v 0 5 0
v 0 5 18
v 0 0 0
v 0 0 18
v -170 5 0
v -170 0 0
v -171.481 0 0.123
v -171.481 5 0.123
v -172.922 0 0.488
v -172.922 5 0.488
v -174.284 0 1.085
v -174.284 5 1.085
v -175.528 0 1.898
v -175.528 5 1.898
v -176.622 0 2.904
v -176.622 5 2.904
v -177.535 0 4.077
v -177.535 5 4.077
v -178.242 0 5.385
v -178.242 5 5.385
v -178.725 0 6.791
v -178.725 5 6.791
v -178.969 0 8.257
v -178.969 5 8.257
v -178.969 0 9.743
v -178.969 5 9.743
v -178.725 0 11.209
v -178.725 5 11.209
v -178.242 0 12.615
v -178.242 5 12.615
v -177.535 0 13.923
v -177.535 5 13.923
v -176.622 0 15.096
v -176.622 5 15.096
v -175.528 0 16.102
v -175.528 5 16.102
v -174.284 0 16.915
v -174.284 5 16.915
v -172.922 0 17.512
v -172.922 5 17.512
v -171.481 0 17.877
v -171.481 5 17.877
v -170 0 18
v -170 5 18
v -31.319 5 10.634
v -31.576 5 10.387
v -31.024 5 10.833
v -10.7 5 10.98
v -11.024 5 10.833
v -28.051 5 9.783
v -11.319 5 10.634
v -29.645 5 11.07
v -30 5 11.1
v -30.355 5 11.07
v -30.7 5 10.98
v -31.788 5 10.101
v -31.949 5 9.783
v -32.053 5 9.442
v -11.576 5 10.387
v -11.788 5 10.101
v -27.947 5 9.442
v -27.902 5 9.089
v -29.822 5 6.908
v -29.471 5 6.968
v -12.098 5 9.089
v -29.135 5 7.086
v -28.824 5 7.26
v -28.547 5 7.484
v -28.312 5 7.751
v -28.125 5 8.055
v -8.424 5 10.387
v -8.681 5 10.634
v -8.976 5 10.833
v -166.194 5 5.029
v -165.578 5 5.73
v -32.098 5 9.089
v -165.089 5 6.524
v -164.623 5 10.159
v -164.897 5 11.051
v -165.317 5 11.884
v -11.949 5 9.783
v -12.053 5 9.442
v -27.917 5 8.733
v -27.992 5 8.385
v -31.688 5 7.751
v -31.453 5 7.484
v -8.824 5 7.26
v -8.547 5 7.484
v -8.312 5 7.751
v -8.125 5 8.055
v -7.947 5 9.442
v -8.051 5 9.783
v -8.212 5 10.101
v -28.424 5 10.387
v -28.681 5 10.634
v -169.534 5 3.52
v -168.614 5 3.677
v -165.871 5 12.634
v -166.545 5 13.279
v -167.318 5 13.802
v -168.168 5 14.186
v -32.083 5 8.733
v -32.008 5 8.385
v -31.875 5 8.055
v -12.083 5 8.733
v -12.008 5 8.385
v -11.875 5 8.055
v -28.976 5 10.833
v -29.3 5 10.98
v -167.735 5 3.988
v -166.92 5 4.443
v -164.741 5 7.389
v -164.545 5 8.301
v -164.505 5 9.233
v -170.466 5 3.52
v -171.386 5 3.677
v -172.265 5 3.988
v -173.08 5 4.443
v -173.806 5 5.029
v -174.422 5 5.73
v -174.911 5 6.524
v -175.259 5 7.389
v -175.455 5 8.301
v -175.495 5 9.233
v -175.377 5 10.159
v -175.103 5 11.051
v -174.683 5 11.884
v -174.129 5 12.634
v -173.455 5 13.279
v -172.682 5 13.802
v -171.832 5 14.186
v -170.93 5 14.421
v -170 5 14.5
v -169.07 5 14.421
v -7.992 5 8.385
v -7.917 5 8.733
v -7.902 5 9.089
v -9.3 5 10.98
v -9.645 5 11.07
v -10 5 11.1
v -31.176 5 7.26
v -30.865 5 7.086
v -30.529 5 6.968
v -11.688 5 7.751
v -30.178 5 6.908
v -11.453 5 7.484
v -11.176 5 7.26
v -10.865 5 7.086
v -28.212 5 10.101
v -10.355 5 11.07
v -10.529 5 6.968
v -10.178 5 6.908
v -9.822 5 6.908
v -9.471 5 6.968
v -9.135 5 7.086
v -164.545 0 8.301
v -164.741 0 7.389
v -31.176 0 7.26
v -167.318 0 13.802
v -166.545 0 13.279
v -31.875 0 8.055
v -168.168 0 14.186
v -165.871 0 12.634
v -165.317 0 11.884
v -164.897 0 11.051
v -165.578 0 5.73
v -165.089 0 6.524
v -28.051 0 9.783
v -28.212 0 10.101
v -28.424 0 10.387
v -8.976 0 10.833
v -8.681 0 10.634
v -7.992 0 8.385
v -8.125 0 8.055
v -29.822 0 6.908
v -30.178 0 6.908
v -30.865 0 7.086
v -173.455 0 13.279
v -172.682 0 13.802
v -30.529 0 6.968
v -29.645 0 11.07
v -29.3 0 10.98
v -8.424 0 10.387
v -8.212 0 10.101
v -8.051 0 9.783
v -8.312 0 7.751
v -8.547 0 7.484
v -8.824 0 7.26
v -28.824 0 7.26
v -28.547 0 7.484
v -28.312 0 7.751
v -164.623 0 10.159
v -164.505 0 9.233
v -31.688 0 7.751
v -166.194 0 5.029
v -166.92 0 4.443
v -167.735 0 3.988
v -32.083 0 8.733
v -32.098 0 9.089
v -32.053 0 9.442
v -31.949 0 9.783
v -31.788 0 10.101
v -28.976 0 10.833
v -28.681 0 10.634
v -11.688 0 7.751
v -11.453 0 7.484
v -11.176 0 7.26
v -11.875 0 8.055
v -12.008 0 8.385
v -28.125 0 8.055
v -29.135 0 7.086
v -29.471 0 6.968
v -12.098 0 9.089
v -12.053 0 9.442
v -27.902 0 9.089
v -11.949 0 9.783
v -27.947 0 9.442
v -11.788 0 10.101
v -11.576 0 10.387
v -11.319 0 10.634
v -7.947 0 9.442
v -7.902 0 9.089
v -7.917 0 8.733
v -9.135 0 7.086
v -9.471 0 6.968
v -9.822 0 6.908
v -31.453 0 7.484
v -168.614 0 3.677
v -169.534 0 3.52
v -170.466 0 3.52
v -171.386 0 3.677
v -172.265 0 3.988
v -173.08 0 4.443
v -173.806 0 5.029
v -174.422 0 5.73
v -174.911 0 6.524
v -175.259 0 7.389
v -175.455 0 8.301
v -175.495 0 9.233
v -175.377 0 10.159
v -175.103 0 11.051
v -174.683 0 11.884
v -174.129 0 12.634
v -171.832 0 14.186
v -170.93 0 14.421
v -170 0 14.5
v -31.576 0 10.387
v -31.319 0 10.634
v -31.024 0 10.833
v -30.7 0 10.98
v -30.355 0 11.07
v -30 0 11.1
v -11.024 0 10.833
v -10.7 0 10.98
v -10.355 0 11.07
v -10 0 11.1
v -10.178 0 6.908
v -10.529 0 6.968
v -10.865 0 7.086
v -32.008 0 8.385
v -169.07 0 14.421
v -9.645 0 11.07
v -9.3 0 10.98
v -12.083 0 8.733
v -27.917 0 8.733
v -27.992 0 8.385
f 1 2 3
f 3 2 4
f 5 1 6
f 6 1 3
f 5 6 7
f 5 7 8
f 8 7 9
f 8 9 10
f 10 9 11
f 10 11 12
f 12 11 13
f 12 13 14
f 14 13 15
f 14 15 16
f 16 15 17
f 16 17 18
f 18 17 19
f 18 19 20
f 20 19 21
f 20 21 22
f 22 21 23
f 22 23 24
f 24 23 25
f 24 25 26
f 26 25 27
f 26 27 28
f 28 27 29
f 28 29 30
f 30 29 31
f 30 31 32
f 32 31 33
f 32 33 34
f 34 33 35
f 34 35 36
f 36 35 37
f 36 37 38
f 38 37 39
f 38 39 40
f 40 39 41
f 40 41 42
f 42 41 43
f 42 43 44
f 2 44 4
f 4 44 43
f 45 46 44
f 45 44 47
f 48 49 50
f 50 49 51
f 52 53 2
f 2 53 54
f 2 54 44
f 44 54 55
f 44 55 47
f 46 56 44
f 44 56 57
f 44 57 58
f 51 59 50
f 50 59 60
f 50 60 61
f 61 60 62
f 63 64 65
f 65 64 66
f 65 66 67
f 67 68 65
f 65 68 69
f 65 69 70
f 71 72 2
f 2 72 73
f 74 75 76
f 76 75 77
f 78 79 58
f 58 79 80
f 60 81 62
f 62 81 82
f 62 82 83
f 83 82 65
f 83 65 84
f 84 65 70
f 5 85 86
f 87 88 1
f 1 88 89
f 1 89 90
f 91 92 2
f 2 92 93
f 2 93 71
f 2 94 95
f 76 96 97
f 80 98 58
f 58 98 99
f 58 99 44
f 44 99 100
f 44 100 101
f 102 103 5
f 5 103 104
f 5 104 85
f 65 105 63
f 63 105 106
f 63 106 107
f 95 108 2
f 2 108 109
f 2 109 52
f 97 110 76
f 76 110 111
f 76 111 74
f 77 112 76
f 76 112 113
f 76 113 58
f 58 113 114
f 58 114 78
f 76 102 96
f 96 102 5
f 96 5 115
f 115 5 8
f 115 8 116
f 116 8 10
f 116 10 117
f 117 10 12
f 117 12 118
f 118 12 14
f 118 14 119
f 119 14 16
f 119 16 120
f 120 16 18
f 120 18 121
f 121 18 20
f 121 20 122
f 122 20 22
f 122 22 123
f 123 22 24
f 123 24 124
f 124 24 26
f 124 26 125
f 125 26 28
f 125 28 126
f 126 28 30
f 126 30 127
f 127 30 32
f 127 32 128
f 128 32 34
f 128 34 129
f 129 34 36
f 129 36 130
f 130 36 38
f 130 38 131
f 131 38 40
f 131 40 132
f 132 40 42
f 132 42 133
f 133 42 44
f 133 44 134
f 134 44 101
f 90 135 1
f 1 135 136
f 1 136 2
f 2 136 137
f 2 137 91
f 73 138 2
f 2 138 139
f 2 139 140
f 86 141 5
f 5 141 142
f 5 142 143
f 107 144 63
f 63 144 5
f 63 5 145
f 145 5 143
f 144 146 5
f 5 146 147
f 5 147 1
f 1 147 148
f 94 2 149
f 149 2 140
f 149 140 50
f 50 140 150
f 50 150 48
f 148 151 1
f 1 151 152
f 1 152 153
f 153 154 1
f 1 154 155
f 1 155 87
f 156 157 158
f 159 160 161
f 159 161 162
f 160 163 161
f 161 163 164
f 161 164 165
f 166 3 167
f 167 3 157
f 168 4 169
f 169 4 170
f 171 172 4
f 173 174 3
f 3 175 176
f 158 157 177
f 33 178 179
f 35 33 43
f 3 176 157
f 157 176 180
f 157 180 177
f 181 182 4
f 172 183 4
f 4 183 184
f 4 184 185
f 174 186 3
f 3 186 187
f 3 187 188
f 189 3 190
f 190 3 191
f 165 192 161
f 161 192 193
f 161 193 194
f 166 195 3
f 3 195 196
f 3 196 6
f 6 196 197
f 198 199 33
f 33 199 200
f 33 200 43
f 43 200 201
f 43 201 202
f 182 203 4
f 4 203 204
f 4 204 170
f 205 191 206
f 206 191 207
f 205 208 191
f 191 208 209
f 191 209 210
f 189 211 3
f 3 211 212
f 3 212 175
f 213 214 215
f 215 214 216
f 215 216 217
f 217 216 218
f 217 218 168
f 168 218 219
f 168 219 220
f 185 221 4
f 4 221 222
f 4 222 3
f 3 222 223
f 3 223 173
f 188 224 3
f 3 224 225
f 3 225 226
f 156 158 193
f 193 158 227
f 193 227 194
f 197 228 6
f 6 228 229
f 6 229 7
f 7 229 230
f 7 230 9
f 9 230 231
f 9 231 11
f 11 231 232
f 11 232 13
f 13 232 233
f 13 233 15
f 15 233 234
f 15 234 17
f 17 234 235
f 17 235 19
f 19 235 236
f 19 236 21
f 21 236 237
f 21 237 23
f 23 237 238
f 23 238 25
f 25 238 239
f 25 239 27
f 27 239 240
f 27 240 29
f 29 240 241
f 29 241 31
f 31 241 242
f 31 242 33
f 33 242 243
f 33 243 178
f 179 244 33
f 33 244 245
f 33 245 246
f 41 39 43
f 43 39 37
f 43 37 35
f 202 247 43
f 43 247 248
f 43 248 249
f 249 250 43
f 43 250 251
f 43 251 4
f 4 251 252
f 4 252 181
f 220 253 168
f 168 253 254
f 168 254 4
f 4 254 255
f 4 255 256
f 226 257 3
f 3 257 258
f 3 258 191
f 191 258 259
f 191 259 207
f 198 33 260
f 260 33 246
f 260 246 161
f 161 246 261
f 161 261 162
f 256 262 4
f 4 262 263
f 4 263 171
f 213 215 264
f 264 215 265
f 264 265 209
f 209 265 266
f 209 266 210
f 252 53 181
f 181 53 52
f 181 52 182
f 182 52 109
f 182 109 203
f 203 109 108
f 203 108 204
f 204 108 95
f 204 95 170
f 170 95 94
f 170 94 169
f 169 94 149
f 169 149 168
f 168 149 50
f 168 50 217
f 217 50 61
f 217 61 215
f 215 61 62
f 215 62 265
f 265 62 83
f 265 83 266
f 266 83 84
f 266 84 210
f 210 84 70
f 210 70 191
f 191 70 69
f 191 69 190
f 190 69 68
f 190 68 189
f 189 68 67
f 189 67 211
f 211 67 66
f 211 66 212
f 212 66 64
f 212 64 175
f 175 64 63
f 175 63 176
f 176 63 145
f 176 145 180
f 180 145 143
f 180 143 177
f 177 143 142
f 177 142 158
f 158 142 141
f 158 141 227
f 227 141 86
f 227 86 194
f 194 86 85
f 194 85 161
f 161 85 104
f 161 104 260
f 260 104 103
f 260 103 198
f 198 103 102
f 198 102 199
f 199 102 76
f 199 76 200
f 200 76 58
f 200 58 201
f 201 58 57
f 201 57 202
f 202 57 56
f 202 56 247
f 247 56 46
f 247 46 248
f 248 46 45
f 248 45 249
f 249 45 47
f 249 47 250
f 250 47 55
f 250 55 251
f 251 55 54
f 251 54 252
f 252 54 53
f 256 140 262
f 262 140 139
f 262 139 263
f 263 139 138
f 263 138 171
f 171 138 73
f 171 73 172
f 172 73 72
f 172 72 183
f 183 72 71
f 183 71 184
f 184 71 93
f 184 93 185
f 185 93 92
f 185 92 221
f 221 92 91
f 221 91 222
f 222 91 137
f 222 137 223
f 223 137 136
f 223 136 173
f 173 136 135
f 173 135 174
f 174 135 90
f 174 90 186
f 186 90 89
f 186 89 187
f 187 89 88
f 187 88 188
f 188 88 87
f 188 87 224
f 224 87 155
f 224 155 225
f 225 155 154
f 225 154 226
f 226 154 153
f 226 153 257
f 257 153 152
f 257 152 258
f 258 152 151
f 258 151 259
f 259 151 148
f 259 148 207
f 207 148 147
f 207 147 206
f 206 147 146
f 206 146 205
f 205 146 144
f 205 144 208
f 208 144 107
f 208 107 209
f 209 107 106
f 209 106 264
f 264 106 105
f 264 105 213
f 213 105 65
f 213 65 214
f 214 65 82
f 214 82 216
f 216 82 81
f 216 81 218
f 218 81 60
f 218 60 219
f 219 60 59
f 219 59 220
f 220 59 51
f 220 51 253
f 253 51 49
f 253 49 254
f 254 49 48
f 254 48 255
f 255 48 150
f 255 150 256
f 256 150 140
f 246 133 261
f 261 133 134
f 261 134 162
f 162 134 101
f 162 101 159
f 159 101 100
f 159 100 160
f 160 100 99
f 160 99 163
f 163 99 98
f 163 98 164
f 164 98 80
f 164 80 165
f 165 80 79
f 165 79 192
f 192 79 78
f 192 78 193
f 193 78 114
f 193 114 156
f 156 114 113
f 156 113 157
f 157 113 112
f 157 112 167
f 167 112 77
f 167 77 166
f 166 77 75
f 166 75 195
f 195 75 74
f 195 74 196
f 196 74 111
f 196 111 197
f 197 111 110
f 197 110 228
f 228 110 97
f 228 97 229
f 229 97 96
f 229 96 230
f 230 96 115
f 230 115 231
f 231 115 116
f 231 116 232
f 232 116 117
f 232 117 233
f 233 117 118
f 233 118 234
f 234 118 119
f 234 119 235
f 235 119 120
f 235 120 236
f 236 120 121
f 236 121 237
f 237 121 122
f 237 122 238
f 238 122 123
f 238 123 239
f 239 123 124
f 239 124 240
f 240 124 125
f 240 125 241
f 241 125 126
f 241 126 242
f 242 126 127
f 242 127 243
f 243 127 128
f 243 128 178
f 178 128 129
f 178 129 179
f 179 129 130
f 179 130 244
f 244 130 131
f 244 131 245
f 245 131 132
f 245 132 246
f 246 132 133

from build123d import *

# Parameters (mm, degrees)
BOSS_EXTRUDE1_DEPTH = 5
SKETCH4_R           = 2.1
CUT_EXTRUDE2_DEPTH  = 180.972220079
SKETCH5_R           = 5.5
CUT_EXTRUDE3_DEPTH  = 180.972220079


with BuildPart() as part:
    # Sketch1 → Boss-Extrude1 (new body)
    with BuildSketch(Plane(origin=(0, 0, 0), x_dir=(1, 0, 0), z_dir=(0, 1, 0))):
        with BuildLine():
            Line((0, 0), (-170, 0))
            ThreePointArc((-170, 0), (-179, -9), (-170, -18))
            Line((-170, -18), (0, -18))
            Line((0, -18), (0, 0))
        make_face()
    extrude(amount=BOSS_EXTRUDE1_DEPTH)

    # Sketch4 → Cut-Extrude2 (cut, through all)
    with BuildSketch(Plane(origin=(0, 5, 0), x_dir=(1, 0, 0), z_dir=(0, 1, 0))):
        with Locations(Location((-10, -9, 0), (0, 0, 270))):
            Circle(SKETCH4_R)
        with Locations(Location((-30, -9, 0), (0, 0, 270))):
            Circle(SKETCH4_R)
    extrude(amount=-CUT_EXTRUDE2_DEPTH, mode=Mode.SUBTRACT)

    # Sketch5 → Cut-Extrude3 (cut, through all)
    with BuildSketch(Plane(origin=(0, 5, 0), x_dir=(1, 0, 0), z_dir=(0, 1, 0))):
        with Locations(Location((-170, -9, 0), (0, 0, 270))):
            Circle(SKETCH5_R)
    extrude(amount=-CUT_EXTRUDE3_DEPTH, mode=Mode.SUBTRACT)


solid = part.part
